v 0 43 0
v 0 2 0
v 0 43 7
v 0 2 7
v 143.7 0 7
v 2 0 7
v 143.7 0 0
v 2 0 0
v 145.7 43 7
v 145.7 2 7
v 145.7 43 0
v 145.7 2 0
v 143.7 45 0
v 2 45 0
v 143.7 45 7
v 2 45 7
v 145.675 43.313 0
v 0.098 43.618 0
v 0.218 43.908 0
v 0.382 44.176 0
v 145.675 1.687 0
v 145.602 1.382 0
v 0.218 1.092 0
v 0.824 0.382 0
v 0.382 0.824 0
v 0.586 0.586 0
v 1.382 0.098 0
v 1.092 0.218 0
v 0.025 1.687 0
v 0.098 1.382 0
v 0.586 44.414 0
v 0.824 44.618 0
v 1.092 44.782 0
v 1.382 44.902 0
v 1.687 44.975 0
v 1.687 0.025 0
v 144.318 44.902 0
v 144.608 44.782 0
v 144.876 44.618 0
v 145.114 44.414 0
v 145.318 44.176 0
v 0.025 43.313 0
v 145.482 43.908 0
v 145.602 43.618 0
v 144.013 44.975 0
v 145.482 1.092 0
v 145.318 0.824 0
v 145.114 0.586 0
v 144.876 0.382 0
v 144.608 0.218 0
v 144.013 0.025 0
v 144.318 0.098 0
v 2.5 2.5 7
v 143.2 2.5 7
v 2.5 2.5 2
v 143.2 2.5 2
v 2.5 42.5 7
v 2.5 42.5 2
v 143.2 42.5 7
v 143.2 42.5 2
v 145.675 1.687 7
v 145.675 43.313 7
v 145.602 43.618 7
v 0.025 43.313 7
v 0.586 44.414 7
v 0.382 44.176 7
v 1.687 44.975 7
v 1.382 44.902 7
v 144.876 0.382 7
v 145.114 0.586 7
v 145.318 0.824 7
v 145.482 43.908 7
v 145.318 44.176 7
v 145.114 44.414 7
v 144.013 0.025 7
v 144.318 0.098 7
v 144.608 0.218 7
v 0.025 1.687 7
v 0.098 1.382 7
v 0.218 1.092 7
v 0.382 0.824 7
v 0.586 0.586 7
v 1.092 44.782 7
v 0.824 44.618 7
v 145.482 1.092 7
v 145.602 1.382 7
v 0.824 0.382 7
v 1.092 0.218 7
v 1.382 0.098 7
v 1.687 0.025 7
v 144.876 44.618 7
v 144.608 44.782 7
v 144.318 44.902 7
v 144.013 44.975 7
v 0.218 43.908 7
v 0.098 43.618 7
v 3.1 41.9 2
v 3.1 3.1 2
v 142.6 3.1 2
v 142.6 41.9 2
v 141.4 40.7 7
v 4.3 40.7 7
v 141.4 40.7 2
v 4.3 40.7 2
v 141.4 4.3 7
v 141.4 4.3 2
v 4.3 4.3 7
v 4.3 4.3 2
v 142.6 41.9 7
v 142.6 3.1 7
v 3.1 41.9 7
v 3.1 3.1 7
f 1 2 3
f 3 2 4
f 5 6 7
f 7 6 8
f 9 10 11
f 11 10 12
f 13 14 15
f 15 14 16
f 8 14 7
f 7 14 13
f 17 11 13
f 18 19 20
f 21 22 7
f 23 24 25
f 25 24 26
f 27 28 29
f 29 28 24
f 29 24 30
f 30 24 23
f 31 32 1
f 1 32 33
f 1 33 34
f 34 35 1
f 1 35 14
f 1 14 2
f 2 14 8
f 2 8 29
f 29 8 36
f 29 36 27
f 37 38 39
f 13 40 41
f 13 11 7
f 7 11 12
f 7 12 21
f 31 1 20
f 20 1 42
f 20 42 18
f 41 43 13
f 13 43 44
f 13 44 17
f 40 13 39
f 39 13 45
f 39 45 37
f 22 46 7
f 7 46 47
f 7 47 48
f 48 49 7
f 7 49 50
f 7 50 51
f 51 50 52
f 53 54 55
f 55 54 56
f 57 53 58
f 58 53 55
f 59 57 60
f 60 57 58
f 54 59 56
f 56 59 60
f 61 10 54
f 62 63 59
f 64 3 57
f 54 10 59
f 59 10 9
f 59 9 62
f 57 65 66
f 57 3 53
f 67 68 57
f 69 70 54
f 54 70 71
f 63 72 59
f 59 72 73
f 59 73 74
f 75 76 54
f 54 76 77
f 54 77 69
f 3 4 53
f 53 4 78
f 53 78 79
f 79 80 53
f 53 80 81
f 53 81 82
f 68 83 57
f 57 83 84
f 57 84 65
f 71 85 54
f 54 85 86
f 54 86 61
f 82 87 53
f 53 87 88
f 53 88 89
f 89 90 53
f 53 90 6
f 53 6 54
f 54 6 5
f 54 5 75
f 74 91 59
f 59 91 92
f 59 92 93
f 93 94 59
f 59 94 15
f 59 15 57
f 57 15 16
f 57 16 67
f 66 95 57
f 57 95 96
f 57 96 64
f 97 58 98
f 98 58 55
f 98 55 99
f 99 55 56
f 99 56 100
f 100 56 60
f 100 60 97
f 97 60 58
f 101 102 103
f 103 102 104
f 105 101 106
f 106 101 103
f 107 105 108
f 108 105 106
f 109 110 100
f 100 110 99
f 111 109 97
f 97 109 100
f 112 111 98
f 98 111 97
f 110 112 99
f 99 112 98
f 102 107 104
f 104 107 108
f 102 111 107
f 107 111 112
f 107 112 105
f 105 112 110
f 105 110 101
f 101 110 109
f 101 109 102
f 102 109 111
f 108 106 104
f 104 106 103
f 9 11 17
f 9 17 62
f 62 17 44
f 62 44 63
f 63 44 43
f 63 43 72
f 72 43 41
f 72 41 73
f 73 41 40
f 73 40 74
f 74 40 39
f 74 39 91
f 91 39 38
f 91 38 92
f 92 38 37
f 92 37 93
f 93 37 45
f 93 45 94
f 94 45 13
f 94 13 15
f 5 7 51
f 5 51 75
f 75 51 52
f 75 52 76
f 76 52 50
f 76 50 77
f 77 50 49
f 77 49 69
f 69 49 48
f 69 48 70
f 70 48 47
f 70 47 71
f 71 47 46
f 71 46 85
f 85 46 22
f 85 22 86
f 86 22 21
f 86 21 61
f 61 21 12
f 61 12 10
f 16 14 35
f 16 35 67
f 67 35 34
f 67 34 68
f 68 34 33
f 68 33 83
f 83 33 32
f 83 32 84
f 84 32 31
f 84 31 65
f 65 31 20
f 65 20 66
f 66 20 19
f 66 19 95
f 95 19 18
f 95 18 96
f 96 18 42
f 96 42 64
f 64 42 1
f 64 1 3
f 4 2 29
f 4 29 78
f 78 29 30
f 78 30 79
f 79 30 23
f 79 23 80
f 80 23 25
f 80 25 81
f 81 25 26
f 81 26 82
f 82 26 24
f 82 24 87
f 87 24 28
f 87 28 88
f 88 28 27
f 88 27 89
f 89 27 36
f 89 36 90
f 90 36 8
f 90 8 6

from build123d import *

# Parameters (mm, degrees)
SKETCH1_W            = 145.7
SKETCH1_H            = 45
BOSS_EXTRUDE1_DEPTH  = 2
SKETCH17_W           = 145.7
SKETCH17_H           = 45
SKETCH17_W_2         = 140.7
SKETCH17_H_2         = 40
SKETCH17_W_3         = 139.5
SKETCH17_H_3         = 38.8
SKETCH17_W_4         = 137.1
SKETCH17_H_4         = 36.4
BOSS_EXTRUDE10_DEPTH = 5
FILLET2_R            = 2


with BuildPart() as part:
    # Sketch1 → Boss-Extrude1 (new body)
    with BuildSketch(Plane.XY):
        with Locations((72.85, 22.5)):
            Rectangle(SKETCH1_W, SKETCH1_H)
    extrude(amount=BOSS_EXTRUDE1_DEPTH)

    # Sketch17 → Boss-Extrude10 (add)
    # profile 1 of 2: a face of its own
    with BuildSketch(Plane.XY.offset(2)):
        with Locations((72.85, 22.5)):
            Rectangle(SKETCH17_W, SKETCH17_H)
        with Locations((72.85, 22.5)):
            Rectangle(SKETCH17_W_2, SKETCH17_H_2, mode=Mode.SUBTRACT)
    # profile 2 of 2: a face of its own
    with BuildSketch(Plane.XY.offset(2)):
        with Locations((72.85, 22.5)):
            Rectangle(SKETCH17_W_3, SKETCH17_H_3)
        with Locations((72.85, 22.5)):
            Rectangle(SKETCH17_W_4, SKETCH17_H_4, mode=Mode.SUBTRACT)
    extrude(amount=BOSS_EXTRUDE10_DEPTH)

    # Fillet2
    fillet2_edges = [part.edges().sort_by_distance(p)[0] for p in [
        (0, 45, 3.5),
        (145.7, 45, 3.5),
        (145.7, 0, 3.5),
        (0, 0, 3.5),
    ]]
    fillet(fillet2_edges, radius=FILLET2_R)


solid = part.part
